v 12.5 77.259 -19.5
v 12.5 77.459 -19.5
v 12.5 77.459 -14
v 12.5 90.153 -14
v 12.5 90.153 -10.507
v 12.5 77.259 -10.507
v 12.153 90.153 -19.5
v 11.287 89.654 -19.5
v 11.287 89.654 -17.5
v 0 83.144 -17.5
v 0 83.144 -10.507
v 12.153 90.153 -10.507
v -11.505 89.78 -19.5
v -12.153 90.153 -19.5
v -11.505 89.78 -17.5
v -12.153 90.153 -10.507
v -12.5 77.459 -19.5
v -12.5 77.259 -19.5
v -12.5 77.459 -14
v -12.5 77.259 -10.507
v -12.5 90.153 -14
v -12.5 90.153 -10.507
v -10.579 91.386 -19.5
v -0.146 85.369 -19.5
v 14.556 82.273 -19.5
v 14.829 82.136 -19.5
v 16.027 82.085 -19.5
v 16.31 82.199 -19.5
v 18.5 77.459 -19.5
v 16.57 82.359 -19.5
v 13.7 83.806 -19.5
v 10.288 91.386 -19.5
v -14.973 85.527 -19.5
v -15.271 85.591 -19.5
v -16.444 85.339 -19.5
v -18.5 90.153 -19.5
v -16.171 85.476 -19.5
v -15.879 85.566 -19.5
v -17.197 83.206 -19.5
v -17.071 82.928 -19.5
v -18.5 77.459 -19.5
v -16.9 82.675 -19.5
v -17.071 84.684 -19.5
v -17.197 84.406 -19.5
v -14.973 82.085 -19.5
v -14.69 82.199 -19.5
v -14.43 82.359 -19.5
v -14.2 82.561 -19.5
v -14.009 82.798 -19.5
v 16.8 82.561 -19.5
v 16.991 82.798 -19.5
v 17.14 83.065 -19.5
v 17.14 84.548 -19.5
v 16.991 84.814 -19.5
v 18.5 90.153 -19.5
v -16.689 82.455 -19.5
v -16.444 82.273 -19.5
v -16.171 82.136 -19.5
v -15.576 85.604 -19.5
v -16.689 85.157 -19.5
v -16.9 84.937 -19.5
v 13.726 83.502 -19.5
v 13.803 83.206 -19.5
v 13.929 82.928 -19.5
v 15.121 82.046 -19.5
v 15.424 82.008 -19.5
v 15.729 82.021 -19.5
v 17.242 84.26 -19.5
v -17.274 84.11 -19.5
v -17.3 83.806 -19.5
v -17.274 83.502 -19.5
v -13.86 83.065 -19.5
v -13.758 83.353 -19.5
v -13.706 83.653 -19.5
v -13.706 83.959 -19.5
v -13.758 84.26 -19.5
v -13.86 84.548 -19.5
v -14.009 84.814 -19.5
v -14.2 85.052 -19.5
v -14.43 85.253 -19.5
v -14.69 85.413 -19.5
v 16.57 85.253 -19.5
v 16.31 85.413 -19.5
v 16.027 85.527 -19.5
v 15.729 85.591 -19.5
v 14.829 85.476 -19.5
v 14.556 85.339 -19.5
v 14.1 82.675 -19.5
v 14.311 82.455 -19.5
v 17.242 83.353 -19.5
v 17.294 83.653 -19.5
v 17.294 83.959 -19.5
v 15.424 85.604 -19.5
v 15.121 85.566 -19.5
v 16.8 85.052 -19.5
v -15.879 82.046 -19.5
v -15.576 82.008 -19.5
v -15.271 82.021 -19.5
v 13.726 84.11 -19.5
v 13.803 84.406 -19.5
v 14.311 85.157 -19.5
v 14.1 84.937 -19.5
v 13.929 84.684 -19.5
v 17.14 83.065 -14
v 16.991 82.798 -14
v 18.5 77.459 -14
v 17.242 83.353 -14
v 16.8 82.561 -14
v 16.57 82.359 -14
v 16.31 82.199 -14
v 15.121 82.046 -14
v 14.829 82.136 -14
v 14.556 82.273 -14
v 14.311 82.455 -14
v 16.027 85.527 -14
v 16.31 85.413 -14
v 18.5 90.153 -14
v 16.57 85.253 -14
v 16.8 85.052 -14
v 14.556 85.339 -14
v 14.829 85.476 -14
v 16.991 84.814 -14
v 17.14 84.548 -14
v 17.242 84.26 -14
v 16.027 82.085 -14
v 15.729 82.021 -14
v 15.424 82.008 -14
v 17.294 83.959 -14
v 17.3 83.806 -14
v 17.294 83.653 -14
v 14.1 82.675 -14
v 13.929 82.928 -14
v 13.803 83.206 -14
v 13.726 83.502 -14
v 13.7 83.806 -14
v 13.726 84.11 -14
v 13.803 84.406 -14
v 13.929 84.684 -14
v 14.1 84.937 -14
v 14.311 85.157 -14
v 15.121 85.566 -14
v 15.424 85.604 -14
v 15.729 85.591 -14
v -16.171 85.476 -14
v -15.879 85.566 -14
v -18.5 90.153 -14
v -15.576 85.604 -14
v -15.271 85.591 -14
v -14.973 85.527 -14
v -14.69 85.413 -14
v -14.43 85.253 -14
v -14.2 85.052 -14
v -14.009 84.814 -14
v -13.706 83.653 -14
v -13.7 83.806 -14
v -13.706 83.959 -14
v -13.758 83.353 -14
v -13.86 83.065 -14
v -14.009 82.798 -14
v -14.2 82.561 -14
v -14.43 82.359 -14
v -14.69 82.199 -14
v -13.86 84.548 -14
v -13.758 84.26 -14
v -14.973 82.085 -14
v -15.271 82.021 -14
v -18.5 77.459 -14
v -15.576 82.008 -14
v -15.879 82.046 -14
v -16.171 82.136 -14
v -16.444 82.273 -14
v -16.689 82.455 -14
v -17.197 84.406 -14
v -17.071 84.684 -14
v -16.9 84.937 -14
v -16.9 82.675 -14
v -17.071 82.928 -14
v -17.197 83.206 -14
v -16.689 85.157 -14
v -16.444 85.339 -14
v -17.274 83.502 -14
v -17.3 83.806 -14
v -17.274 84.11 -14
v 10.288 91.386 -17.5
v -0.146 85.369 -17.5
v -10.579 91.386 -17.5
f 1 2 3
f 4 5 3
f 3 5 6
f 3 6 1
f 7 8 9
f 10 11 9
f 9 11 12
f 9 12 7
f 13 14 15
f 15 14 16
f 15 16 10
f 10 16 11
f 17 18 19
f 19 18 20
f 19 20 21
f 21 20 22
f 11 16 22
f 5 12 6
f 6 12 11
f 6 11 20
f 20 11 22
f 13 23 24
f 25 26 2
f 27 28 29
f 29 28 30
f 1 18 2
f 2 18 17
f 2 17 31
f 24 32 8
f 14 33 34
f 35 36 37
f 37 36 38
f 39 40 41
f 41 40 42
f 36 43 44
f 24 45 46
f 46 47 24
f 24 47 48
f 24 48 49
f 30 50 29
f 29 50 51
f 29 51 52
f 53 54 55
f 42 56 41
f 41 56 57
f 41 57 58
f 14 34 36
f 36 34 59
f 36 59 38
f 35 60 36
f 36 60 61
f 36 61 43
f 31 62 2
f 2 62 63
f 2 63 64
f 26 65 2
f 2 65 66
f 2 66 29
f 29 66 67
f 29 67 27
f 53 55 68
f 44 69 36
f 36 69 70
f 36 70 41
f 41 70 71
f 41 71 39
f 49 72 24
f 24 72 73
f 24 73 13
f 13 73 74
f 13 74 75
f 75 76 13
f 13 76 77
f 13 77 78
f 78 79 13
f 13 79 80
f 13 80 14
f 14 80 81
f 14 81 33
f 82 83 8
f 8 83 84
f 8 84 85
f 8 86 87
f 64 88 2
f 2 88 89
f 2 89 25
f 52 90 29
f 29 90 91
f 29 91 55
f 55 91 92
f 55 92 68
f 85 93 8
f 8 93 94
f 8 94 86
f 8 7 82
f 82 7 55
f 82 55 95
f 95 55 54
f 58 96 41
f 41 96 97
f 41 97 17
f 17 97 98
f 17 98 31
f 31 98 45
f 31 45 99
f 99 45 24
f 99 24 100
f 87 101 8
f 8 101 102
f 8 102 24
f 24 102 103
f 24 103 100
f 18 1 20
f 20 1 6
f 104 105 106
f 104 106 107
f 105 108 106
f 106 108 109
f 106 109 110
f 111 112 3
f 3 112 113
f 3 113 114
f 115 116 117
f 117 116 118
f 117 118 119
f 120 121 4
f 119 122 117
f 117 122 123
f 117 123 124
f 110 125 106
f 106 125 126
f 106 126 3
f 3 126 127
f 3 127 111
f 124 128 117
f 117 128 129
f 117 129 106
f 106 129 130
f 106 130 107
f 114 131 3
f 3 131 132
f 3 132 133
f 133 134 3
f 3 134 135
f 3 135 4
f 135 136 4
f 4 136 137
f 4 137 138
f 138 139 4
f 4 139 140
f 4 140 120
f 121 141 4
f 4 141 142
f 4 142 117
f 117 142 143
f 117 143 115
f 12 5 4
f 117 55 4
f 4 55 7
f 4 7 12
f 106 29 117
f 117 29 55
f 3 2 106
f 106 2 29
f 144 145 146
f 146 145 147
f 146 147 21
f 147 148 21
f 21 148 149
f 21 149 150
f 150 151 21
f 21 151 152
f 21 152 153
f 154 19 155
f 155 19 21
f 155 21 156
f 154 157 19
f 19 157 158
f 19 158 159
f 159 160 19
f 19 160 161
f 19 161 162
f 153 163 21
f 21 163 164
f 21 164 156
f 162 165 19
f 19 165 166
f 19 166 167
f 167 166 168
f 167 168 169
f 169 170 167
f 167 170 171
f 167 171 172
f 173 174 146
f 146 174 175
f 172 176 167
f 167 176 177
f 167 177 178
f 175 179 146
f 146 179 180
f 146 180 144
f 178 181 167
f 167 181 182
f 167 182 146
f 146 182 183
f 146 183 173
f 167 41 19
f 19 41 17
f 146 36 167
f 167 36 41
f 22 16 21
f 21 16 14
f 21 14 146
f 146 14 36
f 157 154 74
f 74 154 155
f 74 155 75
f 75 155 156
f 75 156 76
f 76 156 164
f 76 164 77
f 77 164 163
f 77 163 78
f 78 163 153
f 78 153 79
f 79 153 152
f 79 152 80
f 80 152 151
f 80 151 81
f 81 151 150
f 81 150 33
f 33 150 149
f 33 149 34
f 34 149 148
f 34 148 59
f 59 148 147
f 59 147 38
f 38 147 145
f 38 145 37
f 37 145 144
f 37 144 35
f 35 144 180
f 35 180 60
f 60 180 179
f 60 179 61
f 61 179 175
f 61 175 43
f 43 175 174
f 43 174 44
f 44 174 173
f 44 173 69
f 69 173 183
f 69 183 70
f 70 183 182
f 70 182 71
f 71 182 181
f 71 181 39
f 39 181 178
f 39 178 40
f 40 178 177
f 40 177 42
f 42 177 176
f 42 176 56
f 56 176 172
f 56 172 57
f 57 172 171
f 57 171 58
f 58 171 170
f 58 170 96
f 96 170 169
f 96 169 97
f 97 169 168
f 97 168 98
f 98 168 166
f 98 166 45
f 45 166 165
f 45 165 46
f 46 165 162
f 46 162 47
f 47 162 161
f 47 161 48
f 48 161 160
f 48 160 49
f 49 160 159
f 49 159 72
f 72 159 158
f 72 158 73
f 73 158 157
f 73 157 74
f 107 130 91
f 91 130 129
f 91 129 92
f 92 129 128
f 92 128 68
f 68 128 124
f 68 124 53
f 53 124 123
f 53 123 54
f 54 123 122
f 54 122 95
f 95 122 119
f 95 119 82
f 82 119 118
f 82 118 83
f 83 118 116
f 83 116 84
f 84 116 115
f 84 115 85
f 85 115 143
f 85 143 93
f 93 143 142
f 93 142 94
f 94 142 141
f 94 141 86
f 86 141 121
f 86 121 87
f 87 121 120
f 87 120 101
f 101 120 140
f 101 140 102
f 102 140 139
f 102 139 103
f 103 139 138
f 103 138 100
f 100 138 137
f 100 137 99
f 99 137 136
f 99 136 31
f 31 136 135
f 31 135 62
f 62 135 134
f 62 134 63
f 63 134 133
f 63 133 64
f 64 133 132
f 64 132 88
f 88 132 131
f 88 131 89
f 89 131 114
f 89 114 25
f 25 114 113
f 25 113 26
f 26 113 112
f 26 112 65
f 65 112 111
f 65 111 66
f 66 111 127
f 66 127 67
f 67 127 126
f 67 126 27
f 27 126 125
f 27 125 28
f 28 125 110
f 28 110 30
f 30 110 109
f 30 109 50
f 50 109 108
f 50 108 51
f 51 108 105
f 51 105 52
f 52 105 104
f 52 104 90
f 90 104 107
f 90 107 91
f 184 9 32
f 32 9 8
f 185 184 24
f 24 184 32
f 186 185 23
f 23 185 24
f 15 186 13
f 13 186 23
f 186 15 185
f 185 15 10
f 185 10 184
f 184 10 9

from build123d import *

# Parameters (mm, degrees)
SKETCH2_R               = 18.5
SKETCH2_R_2             = 1.8
BOSS_EXTRUDE1_DEPTH     = 3
SKETCH3_R               = 6.5
CUT_EXTRUDE1_DEPTH      = 3
BOSS_EXTRUDE2_START     = -3
BOSS_EXTRUDE2_DEPTH     = 3
SKETCH5_W               = 37
SKETCH5_H               = 5
BOSS_EXTRUDE3_DEPTH     = 90
SKETCH6_W               = 37
SKETCH6_H               = 15.5
BOSS_EXTRUDE4_DEPTH     = 5
SKETCH7_W               = 6
SKETCH7_H               = 20.5
BOSS_EXTRUDE5_DEPTH     = 20
SKETCH8_W               = 25
SKETCH8_H               = 15.5
CUT_EXTRUDE2_DEPTH      = 10
SKETCH9_W               = 25
SKETCH9_H               = 5
BOSS_EXTRUDE6_DEPTH     = 20
BOSS_EXTRUDE7_REACH     = 128.813
SKETCH10_W              = 5
SKETCH10_H              = 25
SKETCH11_W              = 25
SKETCH11_H              = 20
CUT_EXTRUDE3_DEPTH      = 137.880422267
SKETCH13_W              = 13
SKETCH13_H              = 60
CUT_EXTRUDE5_DEPTH      = 127.957670111
BOSS_EXTRUDE8_DEPTH     = 35
SKETCH16_W              = 37
SKETCH16_H              = 8
BOSS_EXTRUDE9_DEPTH     = 13
SKETCH17_W              = 37
SKETCH17_H              = 8
BOSS_EXTRUDE10_DEPTH    = 13
FILLET1_START           = -18.5
FILLET1_DEPTH           = 37
FILLET2_R               = 8
SKETCH18_W              = 37
SKETCH18_H              = 75
CUT_EXTRUDE6_DEPTH      = 0.001
SKETCH19_R              = 1.8
CUT_EXTRUDE7_DEPTH      = 6
SKETCH20_W              = 7
SKETCH20_H              = 5
CUT_EXTRUDE8_DEPTH      = 20
CUT_EXTRUDE9_DEPTH      = 127.957670111
CUT_EXTRUDE9_DEPTH_BACK = 127.957670111
CUT_EXTRUDE10_DEPTH     = 137.880422267
CUT_EXTRUDE11_DEPTH     = 15
BOSS_EXTRUDE11_DEPTH    = 7.5
BOSS_EXTRUDE12_DEPTH    = 7.5
SKETCH27_W              = 27
SKETCH27_H              = 53
CUT_EXTRUDE13_DEPTH     = 10
BOSS_EXTRUDE13_DEPTH    = 6.9930205
SKETCH29_W              = 6
SKETCH29_H              = 13.094091563
CUT_EXTRUDE14_DEPTH     = 3.5
SKETCH30_W              = 6
SKETCH30_H              = 12.694091563
BOSS_EXTRUDE14_DEPTH    = 3.5
CUT_EXTRUDE15_REACH     = 128.958
SKETCH31_W              = 3.5
SKETCH31_H              = 13.094091563
CUT_EXTRUDE16_START     = -6.993021
SKETCH32_R              = 1.8
CUT_EXTRUDE16_DEPTH     = 6.993021
SKETCH33_R              = 1.8
CUT_EXTRUDE17_DEPTH     = 3.4930205
SKETCH34_R              = 1.8
BOSS_EXTRUDE15_DEPTH    = 2
SKETCH35_W              = 37
SKETCH35_H              = 8.9930205
CUT_EXTRUDE18_DEPTH     = 2
BOSS_EXTRUDE16_DEPTH    = 2


with BuildPart() as part:
    # Sketch2 → Boss-Extrude1 (new body)
    with BuildSketch(Plane(origin=(0, 0, 0), x_dir=(1, 0, 0), z_dir=(0, 1, 0))):
        with Locations(Location((0, 0, 0), (0, 0, 270))):
            Circle(SKETCH2_R)
        with Locations(Location((-15.5, 0, 0), (0, 0, 270))):
            Circle(SKETCH2_R_2, mode=Mode.SUBTRACT)
        with Locations(Location((-7.75, 13.423393759, 0), (0, 0, 270))):
            Circle(SKETCH2_R_2, mode=Mode.SUBTRACT)
        with Locations(Location((7.75, 13.423393759, 0), (0, 0, 270))):
            Circle(SKETCH2_R_2, mode=Mode.SUBTRACT)
        with Locations(Location((15.5, 0, 0), (0, 0, 270))):
            Circle(SKETCH2_R_2, mode=Mode.SUBTRACT)
        with Locations(Location((7.75, -13.423393759, 0), (0, 0, 270))):
            Circle(SKETCH2_R_2, mode=Mode.SUBTRACT)
        with Locations(Location((-7.75, -13.423393759, 0), (0, 0, 270))):
            Circle(SKETCH2_R_2, mode=Mode.SUBTRACT)
    extrude(amount=BOSS_EXTRUDE1_DEPTH)

    # Sketch3 → Cut-Extrude1 (cut)
    with BuildSketch(Plane(origin=(0, 3, 0), x_dir=(1, 0, 0), z_dir=(0, 1, 0))):
        with Locations(Location((0, -7, 0), (0, 0, 270))):
            Circle(SKETCH3_R)
    extrude(amount=-CUT_EXTRUDE1_DEPTH, mode=Mode.SUBTRACT)

    # Sketch4 → Boss-Extrude2 (add)
    with BuildSketch(Plane(origin=(0, 3, 0), x_dir=(1, 0, 0), z_dir=(0, 1, 0)).offset(BOSS_EXTRUDE2_START)):
        with BuildLine():
            Line((18.5, 30.5), (-18.5, 30.5))
            Line((-18.5, 30.5), (-18.5, 0))
            ThreePointArc((-18.5, 0), (0, 18.5), (18.5, 0))
            Line((18.5, 0), (18.5, 30.5))
        make_face()
        with BuildLine():
            ThreePointArc((18.5, 0), (0, -18.5), (-18.5, 0))
            Line((-18.5, 0), (-18.5, -44.5))
            Line((-18.5, -44.5), (18.5, -44.5))
            Line((18.5, -44.5), (18.5, 0))
        make_face()
    extrude(amount=BOSS_EXTRUDE2_DEPTH)

    # Sketch5 → Boss-Extrude3 (add)
    with BuildSketch(Plane(origin=(0, 3, 0), x_dir=(1, 0, 0), z_dir=(0, 1, 0))):
        with Locations((0, 28)):
            Rectangle(SKETCH5_W, SKETCH5_H)
        with Locations((0, -42)):
            Rectangle(SKETCH5_W, SKETCH5_H)
    extrude(amount=BOSS_EXTRUDE3_DEPTH)

    # Sketch6 → Boss-Extrude4 (add)
    with BuildSketch(Plane(origin=(0, 93, 0), x_dir=(1, 0, 0), z_dir=(0, 1, 0))):
        with Locations((0, 17.75)):
            Rectangle(SKETCH6_W, SKETCH6_H)
        with Locations((0, -31.75)):
            Rectangle(SKETCH6_W, SKETCH6_H)
    extrude(amount=-BOSS_EXTRUDE4_DEPTH)

    # Sketch7 → Boss-Extrude5 (add)
    with BuildSketch(Plane(origin=(0, 93, 0), x_dir=(1, 0, 0), z_dir=(0, 1, 0))):
        with Locations((-15.5, 20.25)):
            Rectangle(SKETCH7_W, SKETCH7_H)
        with Locations((15.5, 20.25)):
            Rectangle(SKETCH7_W, SKETCH7_H)
        with Locations((-15.5, -34.25)):
            Rectangle(SKETCH7_W, SKETCH7_H)
        with Locations((15.5, -34.25)):
            Rectangle(SKETCH7_W, SKETCH7_H)
    extrude(amount=BOSS_EXTRUDE5_DEPTH)

    # Sketch8 → Cut-Extrude2 (cut)
    with BuildSketch(Plane(origin=(0, 93, 0), x_dir=(1, 0, 0), z_dir=(0, 1, 0))):
        with Locations((0, 17.75)):
            Rectangle(SKETCH8_W, SKETCH8_H)
        with Locations((0, -31.75)):
            Rectangle(SKETCH8_W, SKETCH8_H)
    extrude(amount=-CUT_EXTRUDE2_DEPTH, mode=Mode.SUBTRACT)

    # Sketch9 → Boss-Extrude6 (add)
    with BuildSketch(Plane(origin=(0, 93, 0), x_dir=(1, 0, 0), z_dir=(0, 1, 0))):
        with Locations((0, 28)):
            Rectangle(SKETCH9_W, SKETCH9_H)
        with Locations((0, -42)):
            Rectangle(SKETCH9_W, SKETCH9_H)
    extrude(amount=BOSS_EXTRUDE6_DEPTH)

    # Sketch10 → Boss-Extrude7 (add, up to next)
    with BuildSketch(Plane(origin=(0, 0, 24), x_dir=(-1, 0, 0), z_dir=(0, 0, -1)), mode=Mode.PRIVATE) as boss_extrude7_sk1:
        with Locations((16, 100.5)):
            Rectangle(SKETCH10_W, SKETCH10_H)
    boss_extrude7_tool1 = extrude(boss_extrude7_sk1.sketch, amount=BOSS_EXTRUDE7_REACH, mode=Mode.PRIVATE) - part.part
    # Sketch10 → Boss-Extrude7 (add, up to next)
    with BuildSketch(Plane(origin=(0, 0, 24), x_dir=(-1, 0, 0), z_dir=(0, 0, -1)), mode=Mode.PRIVATE) as boss_extrude7_sk2:
        with Locations((-16, 100.5)):
            Rectangle(SKETCH10_W, SKETCH10_H)
    boss_extrude7_tool2 = extrude(boss_extrude7_sk2.sketch, amount=BOSS_EXTRUDE7_REACH, mode=Mode.PRIVATE) - part.part
    add(boss_extrude7_tool1.solids().sort_by_distance((-16, 100.5, 24))[0])
    add(boss_extrude7_tool2.solids().sort_by_distance((16, 100.5, 24))[0])

    # Sketch11 → Cut-Extrude3 (cut, through all)
    with BuildSketch(Plane.XY.offset(44.5)):
        with Locations((0, 103)):
            Rectangle(SKETCH11_W, SKETCH11_H)
    extrude(amount=-CUT_EXTRUDE3_DEPTH, mode=Mode.SUBTRACT)

    # Sketch13 → Cut-Extrude5 (cut, through all)
    with BuildSketch(Plane(origin=(18.5, 0, 0), x_dir=(0, 0, -1), z_dir=(1, 0, 0))):
        with Locations((-38, 83)):
            Rectangle(SKETCH13_W, SKETCH13_H)
        with Locations((24, 83)):
            Rectangle(SKETCH13_W, SKETCH13_H)
    extrude(amount=-CUT_EXTRUDE5_DEPTH, mode=Mode.SUBTRACT)


with BuildPart() as cut_extrude5_piece_1:
    # of the separate pieces the step leaves, piece 1, a body of its own (cut_extrude5_pieces)
    add(part.part.solids().sort_by_distance((-7.75, 0, 15.223393759))[0])



with BuildPart() as cut_extrude5_piece_2:
    # of the separate pieces the step leaves, piece 2, a body of its own (cut_extrude5_pieces)
    add(part.part.solids().sort_by_distance((-18.5, 113, 31.5))[0])



with BuildPart() as cut_extrude5_piece_3:
    # of the separate pieces the step leaves, piece 3, a body of its own (cut_extrude5_pieces)
    add(part.part.solids().sort_by_distance((18.5, 113, 31.5))[0])


with BuildPart() as cut_extrude5_piece_2_1:
    add(cut_extrude5_piece_2.part)

    add(cut_extrude5_piece_3.part)  # Boss-Extrude8 merges Cut-Extrude5 piece 3
    # Sketch14 → Boss-Extrude8 (add)
    with BuildSketch(Plane.XZ.offset(-88)):
        Polygon((18.5, -17.5), (18.5, 31.5), (12.5, 31.5), (12.5, 24), (13.5, 24), (13.5, -10), (12.5, -10), (12.5, -17.5), align=None)
        Polygon((-12.5, 31.5), (-18.5, 31.5), (-18.5, -17.5), (-12.5, -17.5), (-12.5, -10), (-13.5, -10), (-13.5, 24), (-12.5, 24), align=None)
    extrude(amount=BOSS_EXTRUDE8_DEPTH)


with BuildPart() as cut_extrude5_piece_1_1:
    add(cut_extrude5_piece_1.part)

    add(cut_extrude5_piece_2_1.part)  # Boss-Extrude9 merges Cut-Extrude5 piece 2
    # Sketch16 → Boss-Extrude9 (add)
    with BuildSketch(Plane.XY.offset(31.5)):
        with Locations((0, 57)):
            Rectangle(SKETCH16_W, SKETCH16_H)
    extrude(amount=BOSS_EXTRUDE9_DEPTH)

    # Sketch17 → Boss-Extrude10 (add)
    with BuildSketch(Plane(origin=(0, 0, -17.5), x_dir=(-1, 0, 0), z_dir=(0, 0, -1))):
        with Locations((0, 57)):
            Rectangle(SKETCH17_W, SKETCH17_H)
    extrude(amount=BOSS_EXTRUDE10_DEPTH)

    # Fillet1: read off the stored shape, not the designer's step
    # Fillet1 outline → Fillet1 (add)
    with BuildSketch(Plane.YZ.offset(FILLET1_START)):
        with BuildLine():
            ThreePointArc((45, 39.5), (50.656854249, 37.156854249), (53, 31.5))
            Line((53, 31.5), (53, 39.5))
            Line((53, 39.5), (45, 39.5))
        make_face()
        with BuildLine():
            ThreePointArc((53, -17.5), (50.656854249, -23.156854249), (45, -25.5))
            Line((45, -25.5), (53, -25.5))
            Line((53, -25.5), (53, -17.5))
        make_face()
    extrude(amount=FILLET1_DEPTH)

    # Fillet2
    fillet2_edges = [cut_extrude5_piece_1_1.edges().sort_by_distance(p)[0] for p in [
        (15.5, 61, 31.5),
        (-15.5, 61, 31.5),
        (-15.5, 61, -17.5),
        (15.5, 61, -17.5),
    ]]
    fillet(fillet2_edges, radius=FILLET2_R)

    # Sketch18 → Cut-Extrude6 (cut)
    with BuildSketch(Plane(origin=(0, 3, 0), x_dir=(1, 0, 0), z_dir=(0, 1, 0))):
        with Locations((0, -7)):
            Rectangle(SKETCH18_W, SKETCH18_H)
    extrude(amount=CUT_EXTRUDE6_DEPTH, mode=Mode.SUBTRACT)


with BuildPart() as cut_extrude6_piece_1:
    # of the separate pieces the step leaves, piece 1, a body of its own (cut_extrude6_pieces)
    add(cut_extrude5_piece_1_1.part.solids().sort_by_distance((18.5, 61, 39.5))[0])


with BuildPart() as cut_extrude6_piece_2:
    # of the separate pieces the step leaves, piece 2, a body of its own (cut_extrude6_pieces)
    add(cut_extrude5_piece_1_1.part.solids().sort_by_distance((18.5, 3, 44.5))[0])


with BuildPart() as cut_extrude7_tool:
    # Sketch19 → Cut-Extrude7 (new body)
    with BuildSketch(Plane.XZ):
        with Locations(Location((-10, 42, 0), (0, 0, 270))):
            Circle(SKETCH19_R)
        with Locations(Location((10, 42, 0), (0, 0, 270))):
            Circle(SKETCH19_R)
        with Locations(Location((-10, -28, 0), (0, 0, 270))):
            Circle(SKETCH19_R)
        with Locations(Location((10, -28, 0), (0, 0, 270))):
            Circle(SKETCH19_R)
    extrude(amount=-CUT_EXTRUDE7_DEPTH)


with BuildPart() as cut_extrude6_piece_1_1:
    add(cut_extrude6_piece_1.part)

    # Cut-Extrude7: cut by cut_extrude7_tool
    add(cut_extrude7_tool.part, mode=Mode.SUBTRACT)

    # Sketch20 → Cut-Extrude8 (cut)
    with BuildSketch(Plane.XZ.offset(-6)):
        with Locations((-10, 42)):
            Rectangle(SKETCH20_W, SKETCH20_H)
        with Locations((10, 42)):
            Rectangle(SKETCH20_W, SKETCH20_H)
        with Locations((-10, -28)):
            Rectangle(SKETCH20_W, SKETCH20_H)
        with Locations((10, -28)):
            Rectangle(SKETCH20_W, SKETCH20_H)
    extrude(amount=-CUT_EXTRUDE8_DEPTH, mode=Mode.SUBTRACT)

    # Sketch21 → Cut-Extrude9 (cut, two sides: drawn at the far end of the back side and taken through both)
    with BuildSketch(Plane.ZY.offset(18.5).offset(-CUT_EXTRUDE9_DEPTH_BACK)):
        Polygon((-10.5069795, 97.546881465), (-10.5069795, 65.615135764), (5.458893351, 81.581008614), align=None)
        Polygon((24.5069795, 65.615135764), (8.541106649, 81.581008614), (24.5069795, 97.546881465), align=None)
        Polygon((-11.485209662, 61.67963441), (25.485209662, 61.67963441), (7, 77.078778227), align=None)
        Polygon((-9.842977491, 104.297173092), (23.842977491, 104.297173092), (7, 84.078778227), align=None)
    extrude(amount=CUT_EXTRUDE9_DEPTH + CUT_EXTRUDE9_DEPTH_BACK, mode=Mode.SUBTRACT)

    # Sketch22 → Cut-Extrude10 (cut, through all)
    with BuildSketch(Plane(origin=(0, 0, -30.5), x_dir=(-1, 0, 0), z_dir=(0, 0, -1))):
        Polygon((-13.5, 52.097217271), (-3, 41.509793962), (-13.5, 30.922370653), align=None)
        Polygon((3, 41.509793962), (13.5, 30.922370653), (13.5, 52.097217271), align=None)
        Polygon((-9.527716063, 30.922370653), (10.12909946, 30.922370653), (0, 40.845941529), align=None)
        Polygon((10.12909946, 52.097217271), (0, 42.173646395), (-9.527716063, 52.097217271), align=None)
    extrude(amount=-CUT_EXTRUDE10_DEPTH, mode=Mode.SUBTRACT)

    # Sketch25 → Boss-Extrude11 (add)
    with BuildSketch(Plane(origin=(0, 0, -17.5), x_dir=(-1, 0, 0), z_dir=(0, 0, -1))):
        Polygon((-12.5, 113), (12.5, 113), (12.5, 104.783121635), (0, 112), (-12.5, 104.783121635), align=None)
    extrude(amount=-BOSS_EXTRUDE11_DEPTH)

    # Sketch26 → Boss-Extrude12 (add)
    with BuildSketch(Plane.XY.offset(31.5)):
        Polygon((0, 112), (-12.5, 104.783121635), (-12.5, 113), (12.5, 113), (12.5, 104.783121635), align=None)
    extrude(amount=-BOSS_EXTRUDE12_DEPTH)

    # Sketch27 → Cut-Extrude13 (cut)
    with BuildSketch(Plane(origin=(0, 61, 0), x_dir=(1, 0, 0), z_dir=(0, 1, 0))):
        with Locations((0, -7)):
            Rectangle(SKETCH27_W, SKETCH27_H)
    extrude(amount=-CUT_EXTRUDE13_DEPTH, mode=Mode.SUBTRACT)

    # Sketch29 → Cut-Extrude14 (cut)
    with BuildSketch(Plane(origin=(0, 0, -17.5), x_dir=(-1, 0, 0), z_dir=(0, 0, -1))):
        with Locations((-15.5, 83.806075854)):
            Rectangle(SKETCH29_W, SKETCH29_H)
        with Locations((15.5, 83.806075854)):
            Rectangle(SKETCH29_W, SKETCH29_H)
    extrude(amount=-CUT_EXTRUDE14_DEPTH, mode=Mode.SUBTRACT)

    # Cut-Extrude15: up to this face of the body (flat: up to its plane)
    cut_extrude15_end = Plane(cut_extrude6_piece_1_1.part.faces().sort_by_distance((-18.5, 59.668655567, -28))[0])
    # Sketch31 → Cut-Extrude15 (cut, up to the picked face)
    with BuildSketch(Plane(origin=(18.5, 0, 0), x_dir=(0, 0, -1), z_dir=(1, 0, 0)), mode=Mode.PRIVATE) as cut_extrude15_sk1:
        with Locations((-29.75, 83.806075854)):
            Rectangle(SKETCH31_W, SKETCH31_H)
    cut_extrude15_tool1 = split(extrude(cut_extrude15_sk1.sketch, amount=-CUT_EXTRUDE15_REACH, mode=Mode.PRIVATE), bisect_by=cut_extrude15_end, keep=Keep.BOTH, mode=Mode.PRIVATE)
    add(cut_extrude15_tool1.solids().sort_by(Axis((18.5, 83.806076, 29.75), (-1, 0, 0)))[0], mode=Mode.SUBTRACT)


with BuildPart() as cut_extrude6_piece_2_1:
    add(cut_extrude6_piece_2.part)

    # Cut-Extrude7: cut by cut_extrude7_tool
    add(cut_extrude7_tool.part, mode=Mode.SUBTRACT)

    # Sketch23 → Cut-Extrude11 (cut)
    with BuildSketch(Plane.XZ):
        Polygon((-11.504954321, 36.262601208), (12.40534205, 36.262601208), (0.450193865, 27.658896237), align=None)
        Polygon((0.450193865, 25.758077697), (-11.504954321, 17.154372727), (12.40534205, 17.154372727), align=None)
        Polygon((-14.846233134, 34.405096401), (-14.846233134, 19.011877534), (-4.15152584, 26.708486967), align=None)
        Polygon((15.746620863, 19.011877534), (5.051913569, 26.708486967), (15.746620863, 34.405096401), align=None)
    extrude(amount=-CUT_EXTRUDE11_DEPTH, mode=Mode.SUBTRACT)


with BuildPart() as body_3:
    # Sketch28 → Boss-Extrude13 (new body)
    with BuildSketch(Plane(origin=(0, 0, -17.5), x_dir=(-1, 0, 0), z_dir=(0, 0, -1))):
        Polygon((-12.5, 90.353121635), (0, 83.143759666), (12.5, 90.353121635), (12.5, 77.259030072), (-12.5, 77.259030072), align=None)
    extrude(amount=-BOSS_EXTRUDE13_DEPTH)

    # Sketch30 → Boss-Extrude14 (add)
    with BuildSketch(Plane(origin=(0, 0, -17.5), x_dir=(-1, 0, 0), z_dir=(0, 0, -1))):
        with Locations((-15.5, 83.806075854)):
            Rectangle(SKETCH30_W, SKETCH30_H)
        with Locations((15.5, 83.806075854)):
            Rectangle(SKETCH30_W, SKETCH30_H)
    extrude(amount=-BOSS_EXTRUDE14_DEPTH)


with BuildPart() as cut_extrude16_tool:
    # Sketch32 → Cut-Extrude16 (new body)
    with BuildSketch(Plane(origin=(0, 0, -17.5), x_dir=(-1, 0, 0), z_dir=(0, 0, -1)).offset(CUT_EXTRUDE16_START)):
        with Locations((-15.5, 83.806075854)):
            Circle(SKETCH32_R)
        with Locations(Location((15.5, 83.806075854, 0), (0, 0, 180))):
            Circle(SKETCH32_R)
    extrude(amount=CUT_EXTRUDE16_DEPTH)


with BuildPart() as cut_extrude6_piece_1_2:
    add(cut_extrude6_piece_1_1.part)

    # Cut-Extrude16: cut by cut_extrude16_tool
    add(cut_extrude16_tool.part, mode=Mode.SUBTRACT)

    # Sketch33 → Cut-Extrude17 (cut)
    with BuildSketch(Plane.XY.offset(28)):
        with Locations((-15.5, 83.806075854)):
            Circle(SKETCH33_R)
        with Locations(Location((15.5, 83.806075854, 0), (0, 0, 180))):
            Circle(SKETCH33_R)
    extrude(amount=-CUT_EXTRUDE17_DEPTH, mode=Mode.SUBTRACT)


with BuildPart() as body_3_1:
    add(body_3.part)

    # Cut-Extrude16: cut by cut_extrude16_tool
    add(cut_extrude16_tool.part, mode=Mode.SUBTRACT)

    # Sketch34 → Boss-Extrude15 (add)
    with BuildSketch(Plane(origin=(0, 0, -17.5), x_dir=(-1, 0, 0), z_dir=(0, 0, -1))):
        Polygon((-12.5, 90.353121635), (-12.5, 90.153121635), (-18.5, 90.153121635), (-18.5, 77.459030072), (-12.5, 77.459030072), (-12.5, 77.259030072), (12.5, 77.259030072), (12.5, 77.459030072), (18.5, 77.459030072), (18.5, 90.153121635), (12.5, 90.153121635), (12.5, 90.353121635), (0, 83.143759666), align=None)
        with Locations((15.5, 83.806075854)):
            Circle(SKETCH34_R, mode=Mode.SUBTRACT)
        with Locations((-15.5, 83.806075854)):
            Circle(SKETCH34_R, mode=Mode.SUBTRACT)
    extrude(amount=BOSS_EXTRUDE15_DEPTH)

    # Sketch35 → Cut-Extrude18 (cut)
    with BuildSketch(Plane(origin=(0, 90.153121635, 0), x_dir=(1, 0, 0), z_dir=(0, 1, 0))):
        with Locations((0, 15.00348975)):
            Rectangle(SKETCH35_W, SKETCH35_H)
    extrude(amount=CUT_EXTRUDE18_DEPTH, mode=Mode.SUBTRACT)

    # Sketch36 → Boss-Extrude16 (add)
    with BuildSketch(Plane(origin=(0, 0, -19.5), x_dir=(-1, 0, 0), z_dir=(0, 0, -1))):
        Polygon((-11.286977809, 89.653512351), (-10.287759241, 91.386014084), (0.145594128, 85.368588405), (10.578947497, 91.386014084), (11.505482728, 89.779534835), (0, 83.143759666), align=None)
    extrude(amount=-BOSS_EXTRUDE16_DEPTH)


solid = body_3_1.part
